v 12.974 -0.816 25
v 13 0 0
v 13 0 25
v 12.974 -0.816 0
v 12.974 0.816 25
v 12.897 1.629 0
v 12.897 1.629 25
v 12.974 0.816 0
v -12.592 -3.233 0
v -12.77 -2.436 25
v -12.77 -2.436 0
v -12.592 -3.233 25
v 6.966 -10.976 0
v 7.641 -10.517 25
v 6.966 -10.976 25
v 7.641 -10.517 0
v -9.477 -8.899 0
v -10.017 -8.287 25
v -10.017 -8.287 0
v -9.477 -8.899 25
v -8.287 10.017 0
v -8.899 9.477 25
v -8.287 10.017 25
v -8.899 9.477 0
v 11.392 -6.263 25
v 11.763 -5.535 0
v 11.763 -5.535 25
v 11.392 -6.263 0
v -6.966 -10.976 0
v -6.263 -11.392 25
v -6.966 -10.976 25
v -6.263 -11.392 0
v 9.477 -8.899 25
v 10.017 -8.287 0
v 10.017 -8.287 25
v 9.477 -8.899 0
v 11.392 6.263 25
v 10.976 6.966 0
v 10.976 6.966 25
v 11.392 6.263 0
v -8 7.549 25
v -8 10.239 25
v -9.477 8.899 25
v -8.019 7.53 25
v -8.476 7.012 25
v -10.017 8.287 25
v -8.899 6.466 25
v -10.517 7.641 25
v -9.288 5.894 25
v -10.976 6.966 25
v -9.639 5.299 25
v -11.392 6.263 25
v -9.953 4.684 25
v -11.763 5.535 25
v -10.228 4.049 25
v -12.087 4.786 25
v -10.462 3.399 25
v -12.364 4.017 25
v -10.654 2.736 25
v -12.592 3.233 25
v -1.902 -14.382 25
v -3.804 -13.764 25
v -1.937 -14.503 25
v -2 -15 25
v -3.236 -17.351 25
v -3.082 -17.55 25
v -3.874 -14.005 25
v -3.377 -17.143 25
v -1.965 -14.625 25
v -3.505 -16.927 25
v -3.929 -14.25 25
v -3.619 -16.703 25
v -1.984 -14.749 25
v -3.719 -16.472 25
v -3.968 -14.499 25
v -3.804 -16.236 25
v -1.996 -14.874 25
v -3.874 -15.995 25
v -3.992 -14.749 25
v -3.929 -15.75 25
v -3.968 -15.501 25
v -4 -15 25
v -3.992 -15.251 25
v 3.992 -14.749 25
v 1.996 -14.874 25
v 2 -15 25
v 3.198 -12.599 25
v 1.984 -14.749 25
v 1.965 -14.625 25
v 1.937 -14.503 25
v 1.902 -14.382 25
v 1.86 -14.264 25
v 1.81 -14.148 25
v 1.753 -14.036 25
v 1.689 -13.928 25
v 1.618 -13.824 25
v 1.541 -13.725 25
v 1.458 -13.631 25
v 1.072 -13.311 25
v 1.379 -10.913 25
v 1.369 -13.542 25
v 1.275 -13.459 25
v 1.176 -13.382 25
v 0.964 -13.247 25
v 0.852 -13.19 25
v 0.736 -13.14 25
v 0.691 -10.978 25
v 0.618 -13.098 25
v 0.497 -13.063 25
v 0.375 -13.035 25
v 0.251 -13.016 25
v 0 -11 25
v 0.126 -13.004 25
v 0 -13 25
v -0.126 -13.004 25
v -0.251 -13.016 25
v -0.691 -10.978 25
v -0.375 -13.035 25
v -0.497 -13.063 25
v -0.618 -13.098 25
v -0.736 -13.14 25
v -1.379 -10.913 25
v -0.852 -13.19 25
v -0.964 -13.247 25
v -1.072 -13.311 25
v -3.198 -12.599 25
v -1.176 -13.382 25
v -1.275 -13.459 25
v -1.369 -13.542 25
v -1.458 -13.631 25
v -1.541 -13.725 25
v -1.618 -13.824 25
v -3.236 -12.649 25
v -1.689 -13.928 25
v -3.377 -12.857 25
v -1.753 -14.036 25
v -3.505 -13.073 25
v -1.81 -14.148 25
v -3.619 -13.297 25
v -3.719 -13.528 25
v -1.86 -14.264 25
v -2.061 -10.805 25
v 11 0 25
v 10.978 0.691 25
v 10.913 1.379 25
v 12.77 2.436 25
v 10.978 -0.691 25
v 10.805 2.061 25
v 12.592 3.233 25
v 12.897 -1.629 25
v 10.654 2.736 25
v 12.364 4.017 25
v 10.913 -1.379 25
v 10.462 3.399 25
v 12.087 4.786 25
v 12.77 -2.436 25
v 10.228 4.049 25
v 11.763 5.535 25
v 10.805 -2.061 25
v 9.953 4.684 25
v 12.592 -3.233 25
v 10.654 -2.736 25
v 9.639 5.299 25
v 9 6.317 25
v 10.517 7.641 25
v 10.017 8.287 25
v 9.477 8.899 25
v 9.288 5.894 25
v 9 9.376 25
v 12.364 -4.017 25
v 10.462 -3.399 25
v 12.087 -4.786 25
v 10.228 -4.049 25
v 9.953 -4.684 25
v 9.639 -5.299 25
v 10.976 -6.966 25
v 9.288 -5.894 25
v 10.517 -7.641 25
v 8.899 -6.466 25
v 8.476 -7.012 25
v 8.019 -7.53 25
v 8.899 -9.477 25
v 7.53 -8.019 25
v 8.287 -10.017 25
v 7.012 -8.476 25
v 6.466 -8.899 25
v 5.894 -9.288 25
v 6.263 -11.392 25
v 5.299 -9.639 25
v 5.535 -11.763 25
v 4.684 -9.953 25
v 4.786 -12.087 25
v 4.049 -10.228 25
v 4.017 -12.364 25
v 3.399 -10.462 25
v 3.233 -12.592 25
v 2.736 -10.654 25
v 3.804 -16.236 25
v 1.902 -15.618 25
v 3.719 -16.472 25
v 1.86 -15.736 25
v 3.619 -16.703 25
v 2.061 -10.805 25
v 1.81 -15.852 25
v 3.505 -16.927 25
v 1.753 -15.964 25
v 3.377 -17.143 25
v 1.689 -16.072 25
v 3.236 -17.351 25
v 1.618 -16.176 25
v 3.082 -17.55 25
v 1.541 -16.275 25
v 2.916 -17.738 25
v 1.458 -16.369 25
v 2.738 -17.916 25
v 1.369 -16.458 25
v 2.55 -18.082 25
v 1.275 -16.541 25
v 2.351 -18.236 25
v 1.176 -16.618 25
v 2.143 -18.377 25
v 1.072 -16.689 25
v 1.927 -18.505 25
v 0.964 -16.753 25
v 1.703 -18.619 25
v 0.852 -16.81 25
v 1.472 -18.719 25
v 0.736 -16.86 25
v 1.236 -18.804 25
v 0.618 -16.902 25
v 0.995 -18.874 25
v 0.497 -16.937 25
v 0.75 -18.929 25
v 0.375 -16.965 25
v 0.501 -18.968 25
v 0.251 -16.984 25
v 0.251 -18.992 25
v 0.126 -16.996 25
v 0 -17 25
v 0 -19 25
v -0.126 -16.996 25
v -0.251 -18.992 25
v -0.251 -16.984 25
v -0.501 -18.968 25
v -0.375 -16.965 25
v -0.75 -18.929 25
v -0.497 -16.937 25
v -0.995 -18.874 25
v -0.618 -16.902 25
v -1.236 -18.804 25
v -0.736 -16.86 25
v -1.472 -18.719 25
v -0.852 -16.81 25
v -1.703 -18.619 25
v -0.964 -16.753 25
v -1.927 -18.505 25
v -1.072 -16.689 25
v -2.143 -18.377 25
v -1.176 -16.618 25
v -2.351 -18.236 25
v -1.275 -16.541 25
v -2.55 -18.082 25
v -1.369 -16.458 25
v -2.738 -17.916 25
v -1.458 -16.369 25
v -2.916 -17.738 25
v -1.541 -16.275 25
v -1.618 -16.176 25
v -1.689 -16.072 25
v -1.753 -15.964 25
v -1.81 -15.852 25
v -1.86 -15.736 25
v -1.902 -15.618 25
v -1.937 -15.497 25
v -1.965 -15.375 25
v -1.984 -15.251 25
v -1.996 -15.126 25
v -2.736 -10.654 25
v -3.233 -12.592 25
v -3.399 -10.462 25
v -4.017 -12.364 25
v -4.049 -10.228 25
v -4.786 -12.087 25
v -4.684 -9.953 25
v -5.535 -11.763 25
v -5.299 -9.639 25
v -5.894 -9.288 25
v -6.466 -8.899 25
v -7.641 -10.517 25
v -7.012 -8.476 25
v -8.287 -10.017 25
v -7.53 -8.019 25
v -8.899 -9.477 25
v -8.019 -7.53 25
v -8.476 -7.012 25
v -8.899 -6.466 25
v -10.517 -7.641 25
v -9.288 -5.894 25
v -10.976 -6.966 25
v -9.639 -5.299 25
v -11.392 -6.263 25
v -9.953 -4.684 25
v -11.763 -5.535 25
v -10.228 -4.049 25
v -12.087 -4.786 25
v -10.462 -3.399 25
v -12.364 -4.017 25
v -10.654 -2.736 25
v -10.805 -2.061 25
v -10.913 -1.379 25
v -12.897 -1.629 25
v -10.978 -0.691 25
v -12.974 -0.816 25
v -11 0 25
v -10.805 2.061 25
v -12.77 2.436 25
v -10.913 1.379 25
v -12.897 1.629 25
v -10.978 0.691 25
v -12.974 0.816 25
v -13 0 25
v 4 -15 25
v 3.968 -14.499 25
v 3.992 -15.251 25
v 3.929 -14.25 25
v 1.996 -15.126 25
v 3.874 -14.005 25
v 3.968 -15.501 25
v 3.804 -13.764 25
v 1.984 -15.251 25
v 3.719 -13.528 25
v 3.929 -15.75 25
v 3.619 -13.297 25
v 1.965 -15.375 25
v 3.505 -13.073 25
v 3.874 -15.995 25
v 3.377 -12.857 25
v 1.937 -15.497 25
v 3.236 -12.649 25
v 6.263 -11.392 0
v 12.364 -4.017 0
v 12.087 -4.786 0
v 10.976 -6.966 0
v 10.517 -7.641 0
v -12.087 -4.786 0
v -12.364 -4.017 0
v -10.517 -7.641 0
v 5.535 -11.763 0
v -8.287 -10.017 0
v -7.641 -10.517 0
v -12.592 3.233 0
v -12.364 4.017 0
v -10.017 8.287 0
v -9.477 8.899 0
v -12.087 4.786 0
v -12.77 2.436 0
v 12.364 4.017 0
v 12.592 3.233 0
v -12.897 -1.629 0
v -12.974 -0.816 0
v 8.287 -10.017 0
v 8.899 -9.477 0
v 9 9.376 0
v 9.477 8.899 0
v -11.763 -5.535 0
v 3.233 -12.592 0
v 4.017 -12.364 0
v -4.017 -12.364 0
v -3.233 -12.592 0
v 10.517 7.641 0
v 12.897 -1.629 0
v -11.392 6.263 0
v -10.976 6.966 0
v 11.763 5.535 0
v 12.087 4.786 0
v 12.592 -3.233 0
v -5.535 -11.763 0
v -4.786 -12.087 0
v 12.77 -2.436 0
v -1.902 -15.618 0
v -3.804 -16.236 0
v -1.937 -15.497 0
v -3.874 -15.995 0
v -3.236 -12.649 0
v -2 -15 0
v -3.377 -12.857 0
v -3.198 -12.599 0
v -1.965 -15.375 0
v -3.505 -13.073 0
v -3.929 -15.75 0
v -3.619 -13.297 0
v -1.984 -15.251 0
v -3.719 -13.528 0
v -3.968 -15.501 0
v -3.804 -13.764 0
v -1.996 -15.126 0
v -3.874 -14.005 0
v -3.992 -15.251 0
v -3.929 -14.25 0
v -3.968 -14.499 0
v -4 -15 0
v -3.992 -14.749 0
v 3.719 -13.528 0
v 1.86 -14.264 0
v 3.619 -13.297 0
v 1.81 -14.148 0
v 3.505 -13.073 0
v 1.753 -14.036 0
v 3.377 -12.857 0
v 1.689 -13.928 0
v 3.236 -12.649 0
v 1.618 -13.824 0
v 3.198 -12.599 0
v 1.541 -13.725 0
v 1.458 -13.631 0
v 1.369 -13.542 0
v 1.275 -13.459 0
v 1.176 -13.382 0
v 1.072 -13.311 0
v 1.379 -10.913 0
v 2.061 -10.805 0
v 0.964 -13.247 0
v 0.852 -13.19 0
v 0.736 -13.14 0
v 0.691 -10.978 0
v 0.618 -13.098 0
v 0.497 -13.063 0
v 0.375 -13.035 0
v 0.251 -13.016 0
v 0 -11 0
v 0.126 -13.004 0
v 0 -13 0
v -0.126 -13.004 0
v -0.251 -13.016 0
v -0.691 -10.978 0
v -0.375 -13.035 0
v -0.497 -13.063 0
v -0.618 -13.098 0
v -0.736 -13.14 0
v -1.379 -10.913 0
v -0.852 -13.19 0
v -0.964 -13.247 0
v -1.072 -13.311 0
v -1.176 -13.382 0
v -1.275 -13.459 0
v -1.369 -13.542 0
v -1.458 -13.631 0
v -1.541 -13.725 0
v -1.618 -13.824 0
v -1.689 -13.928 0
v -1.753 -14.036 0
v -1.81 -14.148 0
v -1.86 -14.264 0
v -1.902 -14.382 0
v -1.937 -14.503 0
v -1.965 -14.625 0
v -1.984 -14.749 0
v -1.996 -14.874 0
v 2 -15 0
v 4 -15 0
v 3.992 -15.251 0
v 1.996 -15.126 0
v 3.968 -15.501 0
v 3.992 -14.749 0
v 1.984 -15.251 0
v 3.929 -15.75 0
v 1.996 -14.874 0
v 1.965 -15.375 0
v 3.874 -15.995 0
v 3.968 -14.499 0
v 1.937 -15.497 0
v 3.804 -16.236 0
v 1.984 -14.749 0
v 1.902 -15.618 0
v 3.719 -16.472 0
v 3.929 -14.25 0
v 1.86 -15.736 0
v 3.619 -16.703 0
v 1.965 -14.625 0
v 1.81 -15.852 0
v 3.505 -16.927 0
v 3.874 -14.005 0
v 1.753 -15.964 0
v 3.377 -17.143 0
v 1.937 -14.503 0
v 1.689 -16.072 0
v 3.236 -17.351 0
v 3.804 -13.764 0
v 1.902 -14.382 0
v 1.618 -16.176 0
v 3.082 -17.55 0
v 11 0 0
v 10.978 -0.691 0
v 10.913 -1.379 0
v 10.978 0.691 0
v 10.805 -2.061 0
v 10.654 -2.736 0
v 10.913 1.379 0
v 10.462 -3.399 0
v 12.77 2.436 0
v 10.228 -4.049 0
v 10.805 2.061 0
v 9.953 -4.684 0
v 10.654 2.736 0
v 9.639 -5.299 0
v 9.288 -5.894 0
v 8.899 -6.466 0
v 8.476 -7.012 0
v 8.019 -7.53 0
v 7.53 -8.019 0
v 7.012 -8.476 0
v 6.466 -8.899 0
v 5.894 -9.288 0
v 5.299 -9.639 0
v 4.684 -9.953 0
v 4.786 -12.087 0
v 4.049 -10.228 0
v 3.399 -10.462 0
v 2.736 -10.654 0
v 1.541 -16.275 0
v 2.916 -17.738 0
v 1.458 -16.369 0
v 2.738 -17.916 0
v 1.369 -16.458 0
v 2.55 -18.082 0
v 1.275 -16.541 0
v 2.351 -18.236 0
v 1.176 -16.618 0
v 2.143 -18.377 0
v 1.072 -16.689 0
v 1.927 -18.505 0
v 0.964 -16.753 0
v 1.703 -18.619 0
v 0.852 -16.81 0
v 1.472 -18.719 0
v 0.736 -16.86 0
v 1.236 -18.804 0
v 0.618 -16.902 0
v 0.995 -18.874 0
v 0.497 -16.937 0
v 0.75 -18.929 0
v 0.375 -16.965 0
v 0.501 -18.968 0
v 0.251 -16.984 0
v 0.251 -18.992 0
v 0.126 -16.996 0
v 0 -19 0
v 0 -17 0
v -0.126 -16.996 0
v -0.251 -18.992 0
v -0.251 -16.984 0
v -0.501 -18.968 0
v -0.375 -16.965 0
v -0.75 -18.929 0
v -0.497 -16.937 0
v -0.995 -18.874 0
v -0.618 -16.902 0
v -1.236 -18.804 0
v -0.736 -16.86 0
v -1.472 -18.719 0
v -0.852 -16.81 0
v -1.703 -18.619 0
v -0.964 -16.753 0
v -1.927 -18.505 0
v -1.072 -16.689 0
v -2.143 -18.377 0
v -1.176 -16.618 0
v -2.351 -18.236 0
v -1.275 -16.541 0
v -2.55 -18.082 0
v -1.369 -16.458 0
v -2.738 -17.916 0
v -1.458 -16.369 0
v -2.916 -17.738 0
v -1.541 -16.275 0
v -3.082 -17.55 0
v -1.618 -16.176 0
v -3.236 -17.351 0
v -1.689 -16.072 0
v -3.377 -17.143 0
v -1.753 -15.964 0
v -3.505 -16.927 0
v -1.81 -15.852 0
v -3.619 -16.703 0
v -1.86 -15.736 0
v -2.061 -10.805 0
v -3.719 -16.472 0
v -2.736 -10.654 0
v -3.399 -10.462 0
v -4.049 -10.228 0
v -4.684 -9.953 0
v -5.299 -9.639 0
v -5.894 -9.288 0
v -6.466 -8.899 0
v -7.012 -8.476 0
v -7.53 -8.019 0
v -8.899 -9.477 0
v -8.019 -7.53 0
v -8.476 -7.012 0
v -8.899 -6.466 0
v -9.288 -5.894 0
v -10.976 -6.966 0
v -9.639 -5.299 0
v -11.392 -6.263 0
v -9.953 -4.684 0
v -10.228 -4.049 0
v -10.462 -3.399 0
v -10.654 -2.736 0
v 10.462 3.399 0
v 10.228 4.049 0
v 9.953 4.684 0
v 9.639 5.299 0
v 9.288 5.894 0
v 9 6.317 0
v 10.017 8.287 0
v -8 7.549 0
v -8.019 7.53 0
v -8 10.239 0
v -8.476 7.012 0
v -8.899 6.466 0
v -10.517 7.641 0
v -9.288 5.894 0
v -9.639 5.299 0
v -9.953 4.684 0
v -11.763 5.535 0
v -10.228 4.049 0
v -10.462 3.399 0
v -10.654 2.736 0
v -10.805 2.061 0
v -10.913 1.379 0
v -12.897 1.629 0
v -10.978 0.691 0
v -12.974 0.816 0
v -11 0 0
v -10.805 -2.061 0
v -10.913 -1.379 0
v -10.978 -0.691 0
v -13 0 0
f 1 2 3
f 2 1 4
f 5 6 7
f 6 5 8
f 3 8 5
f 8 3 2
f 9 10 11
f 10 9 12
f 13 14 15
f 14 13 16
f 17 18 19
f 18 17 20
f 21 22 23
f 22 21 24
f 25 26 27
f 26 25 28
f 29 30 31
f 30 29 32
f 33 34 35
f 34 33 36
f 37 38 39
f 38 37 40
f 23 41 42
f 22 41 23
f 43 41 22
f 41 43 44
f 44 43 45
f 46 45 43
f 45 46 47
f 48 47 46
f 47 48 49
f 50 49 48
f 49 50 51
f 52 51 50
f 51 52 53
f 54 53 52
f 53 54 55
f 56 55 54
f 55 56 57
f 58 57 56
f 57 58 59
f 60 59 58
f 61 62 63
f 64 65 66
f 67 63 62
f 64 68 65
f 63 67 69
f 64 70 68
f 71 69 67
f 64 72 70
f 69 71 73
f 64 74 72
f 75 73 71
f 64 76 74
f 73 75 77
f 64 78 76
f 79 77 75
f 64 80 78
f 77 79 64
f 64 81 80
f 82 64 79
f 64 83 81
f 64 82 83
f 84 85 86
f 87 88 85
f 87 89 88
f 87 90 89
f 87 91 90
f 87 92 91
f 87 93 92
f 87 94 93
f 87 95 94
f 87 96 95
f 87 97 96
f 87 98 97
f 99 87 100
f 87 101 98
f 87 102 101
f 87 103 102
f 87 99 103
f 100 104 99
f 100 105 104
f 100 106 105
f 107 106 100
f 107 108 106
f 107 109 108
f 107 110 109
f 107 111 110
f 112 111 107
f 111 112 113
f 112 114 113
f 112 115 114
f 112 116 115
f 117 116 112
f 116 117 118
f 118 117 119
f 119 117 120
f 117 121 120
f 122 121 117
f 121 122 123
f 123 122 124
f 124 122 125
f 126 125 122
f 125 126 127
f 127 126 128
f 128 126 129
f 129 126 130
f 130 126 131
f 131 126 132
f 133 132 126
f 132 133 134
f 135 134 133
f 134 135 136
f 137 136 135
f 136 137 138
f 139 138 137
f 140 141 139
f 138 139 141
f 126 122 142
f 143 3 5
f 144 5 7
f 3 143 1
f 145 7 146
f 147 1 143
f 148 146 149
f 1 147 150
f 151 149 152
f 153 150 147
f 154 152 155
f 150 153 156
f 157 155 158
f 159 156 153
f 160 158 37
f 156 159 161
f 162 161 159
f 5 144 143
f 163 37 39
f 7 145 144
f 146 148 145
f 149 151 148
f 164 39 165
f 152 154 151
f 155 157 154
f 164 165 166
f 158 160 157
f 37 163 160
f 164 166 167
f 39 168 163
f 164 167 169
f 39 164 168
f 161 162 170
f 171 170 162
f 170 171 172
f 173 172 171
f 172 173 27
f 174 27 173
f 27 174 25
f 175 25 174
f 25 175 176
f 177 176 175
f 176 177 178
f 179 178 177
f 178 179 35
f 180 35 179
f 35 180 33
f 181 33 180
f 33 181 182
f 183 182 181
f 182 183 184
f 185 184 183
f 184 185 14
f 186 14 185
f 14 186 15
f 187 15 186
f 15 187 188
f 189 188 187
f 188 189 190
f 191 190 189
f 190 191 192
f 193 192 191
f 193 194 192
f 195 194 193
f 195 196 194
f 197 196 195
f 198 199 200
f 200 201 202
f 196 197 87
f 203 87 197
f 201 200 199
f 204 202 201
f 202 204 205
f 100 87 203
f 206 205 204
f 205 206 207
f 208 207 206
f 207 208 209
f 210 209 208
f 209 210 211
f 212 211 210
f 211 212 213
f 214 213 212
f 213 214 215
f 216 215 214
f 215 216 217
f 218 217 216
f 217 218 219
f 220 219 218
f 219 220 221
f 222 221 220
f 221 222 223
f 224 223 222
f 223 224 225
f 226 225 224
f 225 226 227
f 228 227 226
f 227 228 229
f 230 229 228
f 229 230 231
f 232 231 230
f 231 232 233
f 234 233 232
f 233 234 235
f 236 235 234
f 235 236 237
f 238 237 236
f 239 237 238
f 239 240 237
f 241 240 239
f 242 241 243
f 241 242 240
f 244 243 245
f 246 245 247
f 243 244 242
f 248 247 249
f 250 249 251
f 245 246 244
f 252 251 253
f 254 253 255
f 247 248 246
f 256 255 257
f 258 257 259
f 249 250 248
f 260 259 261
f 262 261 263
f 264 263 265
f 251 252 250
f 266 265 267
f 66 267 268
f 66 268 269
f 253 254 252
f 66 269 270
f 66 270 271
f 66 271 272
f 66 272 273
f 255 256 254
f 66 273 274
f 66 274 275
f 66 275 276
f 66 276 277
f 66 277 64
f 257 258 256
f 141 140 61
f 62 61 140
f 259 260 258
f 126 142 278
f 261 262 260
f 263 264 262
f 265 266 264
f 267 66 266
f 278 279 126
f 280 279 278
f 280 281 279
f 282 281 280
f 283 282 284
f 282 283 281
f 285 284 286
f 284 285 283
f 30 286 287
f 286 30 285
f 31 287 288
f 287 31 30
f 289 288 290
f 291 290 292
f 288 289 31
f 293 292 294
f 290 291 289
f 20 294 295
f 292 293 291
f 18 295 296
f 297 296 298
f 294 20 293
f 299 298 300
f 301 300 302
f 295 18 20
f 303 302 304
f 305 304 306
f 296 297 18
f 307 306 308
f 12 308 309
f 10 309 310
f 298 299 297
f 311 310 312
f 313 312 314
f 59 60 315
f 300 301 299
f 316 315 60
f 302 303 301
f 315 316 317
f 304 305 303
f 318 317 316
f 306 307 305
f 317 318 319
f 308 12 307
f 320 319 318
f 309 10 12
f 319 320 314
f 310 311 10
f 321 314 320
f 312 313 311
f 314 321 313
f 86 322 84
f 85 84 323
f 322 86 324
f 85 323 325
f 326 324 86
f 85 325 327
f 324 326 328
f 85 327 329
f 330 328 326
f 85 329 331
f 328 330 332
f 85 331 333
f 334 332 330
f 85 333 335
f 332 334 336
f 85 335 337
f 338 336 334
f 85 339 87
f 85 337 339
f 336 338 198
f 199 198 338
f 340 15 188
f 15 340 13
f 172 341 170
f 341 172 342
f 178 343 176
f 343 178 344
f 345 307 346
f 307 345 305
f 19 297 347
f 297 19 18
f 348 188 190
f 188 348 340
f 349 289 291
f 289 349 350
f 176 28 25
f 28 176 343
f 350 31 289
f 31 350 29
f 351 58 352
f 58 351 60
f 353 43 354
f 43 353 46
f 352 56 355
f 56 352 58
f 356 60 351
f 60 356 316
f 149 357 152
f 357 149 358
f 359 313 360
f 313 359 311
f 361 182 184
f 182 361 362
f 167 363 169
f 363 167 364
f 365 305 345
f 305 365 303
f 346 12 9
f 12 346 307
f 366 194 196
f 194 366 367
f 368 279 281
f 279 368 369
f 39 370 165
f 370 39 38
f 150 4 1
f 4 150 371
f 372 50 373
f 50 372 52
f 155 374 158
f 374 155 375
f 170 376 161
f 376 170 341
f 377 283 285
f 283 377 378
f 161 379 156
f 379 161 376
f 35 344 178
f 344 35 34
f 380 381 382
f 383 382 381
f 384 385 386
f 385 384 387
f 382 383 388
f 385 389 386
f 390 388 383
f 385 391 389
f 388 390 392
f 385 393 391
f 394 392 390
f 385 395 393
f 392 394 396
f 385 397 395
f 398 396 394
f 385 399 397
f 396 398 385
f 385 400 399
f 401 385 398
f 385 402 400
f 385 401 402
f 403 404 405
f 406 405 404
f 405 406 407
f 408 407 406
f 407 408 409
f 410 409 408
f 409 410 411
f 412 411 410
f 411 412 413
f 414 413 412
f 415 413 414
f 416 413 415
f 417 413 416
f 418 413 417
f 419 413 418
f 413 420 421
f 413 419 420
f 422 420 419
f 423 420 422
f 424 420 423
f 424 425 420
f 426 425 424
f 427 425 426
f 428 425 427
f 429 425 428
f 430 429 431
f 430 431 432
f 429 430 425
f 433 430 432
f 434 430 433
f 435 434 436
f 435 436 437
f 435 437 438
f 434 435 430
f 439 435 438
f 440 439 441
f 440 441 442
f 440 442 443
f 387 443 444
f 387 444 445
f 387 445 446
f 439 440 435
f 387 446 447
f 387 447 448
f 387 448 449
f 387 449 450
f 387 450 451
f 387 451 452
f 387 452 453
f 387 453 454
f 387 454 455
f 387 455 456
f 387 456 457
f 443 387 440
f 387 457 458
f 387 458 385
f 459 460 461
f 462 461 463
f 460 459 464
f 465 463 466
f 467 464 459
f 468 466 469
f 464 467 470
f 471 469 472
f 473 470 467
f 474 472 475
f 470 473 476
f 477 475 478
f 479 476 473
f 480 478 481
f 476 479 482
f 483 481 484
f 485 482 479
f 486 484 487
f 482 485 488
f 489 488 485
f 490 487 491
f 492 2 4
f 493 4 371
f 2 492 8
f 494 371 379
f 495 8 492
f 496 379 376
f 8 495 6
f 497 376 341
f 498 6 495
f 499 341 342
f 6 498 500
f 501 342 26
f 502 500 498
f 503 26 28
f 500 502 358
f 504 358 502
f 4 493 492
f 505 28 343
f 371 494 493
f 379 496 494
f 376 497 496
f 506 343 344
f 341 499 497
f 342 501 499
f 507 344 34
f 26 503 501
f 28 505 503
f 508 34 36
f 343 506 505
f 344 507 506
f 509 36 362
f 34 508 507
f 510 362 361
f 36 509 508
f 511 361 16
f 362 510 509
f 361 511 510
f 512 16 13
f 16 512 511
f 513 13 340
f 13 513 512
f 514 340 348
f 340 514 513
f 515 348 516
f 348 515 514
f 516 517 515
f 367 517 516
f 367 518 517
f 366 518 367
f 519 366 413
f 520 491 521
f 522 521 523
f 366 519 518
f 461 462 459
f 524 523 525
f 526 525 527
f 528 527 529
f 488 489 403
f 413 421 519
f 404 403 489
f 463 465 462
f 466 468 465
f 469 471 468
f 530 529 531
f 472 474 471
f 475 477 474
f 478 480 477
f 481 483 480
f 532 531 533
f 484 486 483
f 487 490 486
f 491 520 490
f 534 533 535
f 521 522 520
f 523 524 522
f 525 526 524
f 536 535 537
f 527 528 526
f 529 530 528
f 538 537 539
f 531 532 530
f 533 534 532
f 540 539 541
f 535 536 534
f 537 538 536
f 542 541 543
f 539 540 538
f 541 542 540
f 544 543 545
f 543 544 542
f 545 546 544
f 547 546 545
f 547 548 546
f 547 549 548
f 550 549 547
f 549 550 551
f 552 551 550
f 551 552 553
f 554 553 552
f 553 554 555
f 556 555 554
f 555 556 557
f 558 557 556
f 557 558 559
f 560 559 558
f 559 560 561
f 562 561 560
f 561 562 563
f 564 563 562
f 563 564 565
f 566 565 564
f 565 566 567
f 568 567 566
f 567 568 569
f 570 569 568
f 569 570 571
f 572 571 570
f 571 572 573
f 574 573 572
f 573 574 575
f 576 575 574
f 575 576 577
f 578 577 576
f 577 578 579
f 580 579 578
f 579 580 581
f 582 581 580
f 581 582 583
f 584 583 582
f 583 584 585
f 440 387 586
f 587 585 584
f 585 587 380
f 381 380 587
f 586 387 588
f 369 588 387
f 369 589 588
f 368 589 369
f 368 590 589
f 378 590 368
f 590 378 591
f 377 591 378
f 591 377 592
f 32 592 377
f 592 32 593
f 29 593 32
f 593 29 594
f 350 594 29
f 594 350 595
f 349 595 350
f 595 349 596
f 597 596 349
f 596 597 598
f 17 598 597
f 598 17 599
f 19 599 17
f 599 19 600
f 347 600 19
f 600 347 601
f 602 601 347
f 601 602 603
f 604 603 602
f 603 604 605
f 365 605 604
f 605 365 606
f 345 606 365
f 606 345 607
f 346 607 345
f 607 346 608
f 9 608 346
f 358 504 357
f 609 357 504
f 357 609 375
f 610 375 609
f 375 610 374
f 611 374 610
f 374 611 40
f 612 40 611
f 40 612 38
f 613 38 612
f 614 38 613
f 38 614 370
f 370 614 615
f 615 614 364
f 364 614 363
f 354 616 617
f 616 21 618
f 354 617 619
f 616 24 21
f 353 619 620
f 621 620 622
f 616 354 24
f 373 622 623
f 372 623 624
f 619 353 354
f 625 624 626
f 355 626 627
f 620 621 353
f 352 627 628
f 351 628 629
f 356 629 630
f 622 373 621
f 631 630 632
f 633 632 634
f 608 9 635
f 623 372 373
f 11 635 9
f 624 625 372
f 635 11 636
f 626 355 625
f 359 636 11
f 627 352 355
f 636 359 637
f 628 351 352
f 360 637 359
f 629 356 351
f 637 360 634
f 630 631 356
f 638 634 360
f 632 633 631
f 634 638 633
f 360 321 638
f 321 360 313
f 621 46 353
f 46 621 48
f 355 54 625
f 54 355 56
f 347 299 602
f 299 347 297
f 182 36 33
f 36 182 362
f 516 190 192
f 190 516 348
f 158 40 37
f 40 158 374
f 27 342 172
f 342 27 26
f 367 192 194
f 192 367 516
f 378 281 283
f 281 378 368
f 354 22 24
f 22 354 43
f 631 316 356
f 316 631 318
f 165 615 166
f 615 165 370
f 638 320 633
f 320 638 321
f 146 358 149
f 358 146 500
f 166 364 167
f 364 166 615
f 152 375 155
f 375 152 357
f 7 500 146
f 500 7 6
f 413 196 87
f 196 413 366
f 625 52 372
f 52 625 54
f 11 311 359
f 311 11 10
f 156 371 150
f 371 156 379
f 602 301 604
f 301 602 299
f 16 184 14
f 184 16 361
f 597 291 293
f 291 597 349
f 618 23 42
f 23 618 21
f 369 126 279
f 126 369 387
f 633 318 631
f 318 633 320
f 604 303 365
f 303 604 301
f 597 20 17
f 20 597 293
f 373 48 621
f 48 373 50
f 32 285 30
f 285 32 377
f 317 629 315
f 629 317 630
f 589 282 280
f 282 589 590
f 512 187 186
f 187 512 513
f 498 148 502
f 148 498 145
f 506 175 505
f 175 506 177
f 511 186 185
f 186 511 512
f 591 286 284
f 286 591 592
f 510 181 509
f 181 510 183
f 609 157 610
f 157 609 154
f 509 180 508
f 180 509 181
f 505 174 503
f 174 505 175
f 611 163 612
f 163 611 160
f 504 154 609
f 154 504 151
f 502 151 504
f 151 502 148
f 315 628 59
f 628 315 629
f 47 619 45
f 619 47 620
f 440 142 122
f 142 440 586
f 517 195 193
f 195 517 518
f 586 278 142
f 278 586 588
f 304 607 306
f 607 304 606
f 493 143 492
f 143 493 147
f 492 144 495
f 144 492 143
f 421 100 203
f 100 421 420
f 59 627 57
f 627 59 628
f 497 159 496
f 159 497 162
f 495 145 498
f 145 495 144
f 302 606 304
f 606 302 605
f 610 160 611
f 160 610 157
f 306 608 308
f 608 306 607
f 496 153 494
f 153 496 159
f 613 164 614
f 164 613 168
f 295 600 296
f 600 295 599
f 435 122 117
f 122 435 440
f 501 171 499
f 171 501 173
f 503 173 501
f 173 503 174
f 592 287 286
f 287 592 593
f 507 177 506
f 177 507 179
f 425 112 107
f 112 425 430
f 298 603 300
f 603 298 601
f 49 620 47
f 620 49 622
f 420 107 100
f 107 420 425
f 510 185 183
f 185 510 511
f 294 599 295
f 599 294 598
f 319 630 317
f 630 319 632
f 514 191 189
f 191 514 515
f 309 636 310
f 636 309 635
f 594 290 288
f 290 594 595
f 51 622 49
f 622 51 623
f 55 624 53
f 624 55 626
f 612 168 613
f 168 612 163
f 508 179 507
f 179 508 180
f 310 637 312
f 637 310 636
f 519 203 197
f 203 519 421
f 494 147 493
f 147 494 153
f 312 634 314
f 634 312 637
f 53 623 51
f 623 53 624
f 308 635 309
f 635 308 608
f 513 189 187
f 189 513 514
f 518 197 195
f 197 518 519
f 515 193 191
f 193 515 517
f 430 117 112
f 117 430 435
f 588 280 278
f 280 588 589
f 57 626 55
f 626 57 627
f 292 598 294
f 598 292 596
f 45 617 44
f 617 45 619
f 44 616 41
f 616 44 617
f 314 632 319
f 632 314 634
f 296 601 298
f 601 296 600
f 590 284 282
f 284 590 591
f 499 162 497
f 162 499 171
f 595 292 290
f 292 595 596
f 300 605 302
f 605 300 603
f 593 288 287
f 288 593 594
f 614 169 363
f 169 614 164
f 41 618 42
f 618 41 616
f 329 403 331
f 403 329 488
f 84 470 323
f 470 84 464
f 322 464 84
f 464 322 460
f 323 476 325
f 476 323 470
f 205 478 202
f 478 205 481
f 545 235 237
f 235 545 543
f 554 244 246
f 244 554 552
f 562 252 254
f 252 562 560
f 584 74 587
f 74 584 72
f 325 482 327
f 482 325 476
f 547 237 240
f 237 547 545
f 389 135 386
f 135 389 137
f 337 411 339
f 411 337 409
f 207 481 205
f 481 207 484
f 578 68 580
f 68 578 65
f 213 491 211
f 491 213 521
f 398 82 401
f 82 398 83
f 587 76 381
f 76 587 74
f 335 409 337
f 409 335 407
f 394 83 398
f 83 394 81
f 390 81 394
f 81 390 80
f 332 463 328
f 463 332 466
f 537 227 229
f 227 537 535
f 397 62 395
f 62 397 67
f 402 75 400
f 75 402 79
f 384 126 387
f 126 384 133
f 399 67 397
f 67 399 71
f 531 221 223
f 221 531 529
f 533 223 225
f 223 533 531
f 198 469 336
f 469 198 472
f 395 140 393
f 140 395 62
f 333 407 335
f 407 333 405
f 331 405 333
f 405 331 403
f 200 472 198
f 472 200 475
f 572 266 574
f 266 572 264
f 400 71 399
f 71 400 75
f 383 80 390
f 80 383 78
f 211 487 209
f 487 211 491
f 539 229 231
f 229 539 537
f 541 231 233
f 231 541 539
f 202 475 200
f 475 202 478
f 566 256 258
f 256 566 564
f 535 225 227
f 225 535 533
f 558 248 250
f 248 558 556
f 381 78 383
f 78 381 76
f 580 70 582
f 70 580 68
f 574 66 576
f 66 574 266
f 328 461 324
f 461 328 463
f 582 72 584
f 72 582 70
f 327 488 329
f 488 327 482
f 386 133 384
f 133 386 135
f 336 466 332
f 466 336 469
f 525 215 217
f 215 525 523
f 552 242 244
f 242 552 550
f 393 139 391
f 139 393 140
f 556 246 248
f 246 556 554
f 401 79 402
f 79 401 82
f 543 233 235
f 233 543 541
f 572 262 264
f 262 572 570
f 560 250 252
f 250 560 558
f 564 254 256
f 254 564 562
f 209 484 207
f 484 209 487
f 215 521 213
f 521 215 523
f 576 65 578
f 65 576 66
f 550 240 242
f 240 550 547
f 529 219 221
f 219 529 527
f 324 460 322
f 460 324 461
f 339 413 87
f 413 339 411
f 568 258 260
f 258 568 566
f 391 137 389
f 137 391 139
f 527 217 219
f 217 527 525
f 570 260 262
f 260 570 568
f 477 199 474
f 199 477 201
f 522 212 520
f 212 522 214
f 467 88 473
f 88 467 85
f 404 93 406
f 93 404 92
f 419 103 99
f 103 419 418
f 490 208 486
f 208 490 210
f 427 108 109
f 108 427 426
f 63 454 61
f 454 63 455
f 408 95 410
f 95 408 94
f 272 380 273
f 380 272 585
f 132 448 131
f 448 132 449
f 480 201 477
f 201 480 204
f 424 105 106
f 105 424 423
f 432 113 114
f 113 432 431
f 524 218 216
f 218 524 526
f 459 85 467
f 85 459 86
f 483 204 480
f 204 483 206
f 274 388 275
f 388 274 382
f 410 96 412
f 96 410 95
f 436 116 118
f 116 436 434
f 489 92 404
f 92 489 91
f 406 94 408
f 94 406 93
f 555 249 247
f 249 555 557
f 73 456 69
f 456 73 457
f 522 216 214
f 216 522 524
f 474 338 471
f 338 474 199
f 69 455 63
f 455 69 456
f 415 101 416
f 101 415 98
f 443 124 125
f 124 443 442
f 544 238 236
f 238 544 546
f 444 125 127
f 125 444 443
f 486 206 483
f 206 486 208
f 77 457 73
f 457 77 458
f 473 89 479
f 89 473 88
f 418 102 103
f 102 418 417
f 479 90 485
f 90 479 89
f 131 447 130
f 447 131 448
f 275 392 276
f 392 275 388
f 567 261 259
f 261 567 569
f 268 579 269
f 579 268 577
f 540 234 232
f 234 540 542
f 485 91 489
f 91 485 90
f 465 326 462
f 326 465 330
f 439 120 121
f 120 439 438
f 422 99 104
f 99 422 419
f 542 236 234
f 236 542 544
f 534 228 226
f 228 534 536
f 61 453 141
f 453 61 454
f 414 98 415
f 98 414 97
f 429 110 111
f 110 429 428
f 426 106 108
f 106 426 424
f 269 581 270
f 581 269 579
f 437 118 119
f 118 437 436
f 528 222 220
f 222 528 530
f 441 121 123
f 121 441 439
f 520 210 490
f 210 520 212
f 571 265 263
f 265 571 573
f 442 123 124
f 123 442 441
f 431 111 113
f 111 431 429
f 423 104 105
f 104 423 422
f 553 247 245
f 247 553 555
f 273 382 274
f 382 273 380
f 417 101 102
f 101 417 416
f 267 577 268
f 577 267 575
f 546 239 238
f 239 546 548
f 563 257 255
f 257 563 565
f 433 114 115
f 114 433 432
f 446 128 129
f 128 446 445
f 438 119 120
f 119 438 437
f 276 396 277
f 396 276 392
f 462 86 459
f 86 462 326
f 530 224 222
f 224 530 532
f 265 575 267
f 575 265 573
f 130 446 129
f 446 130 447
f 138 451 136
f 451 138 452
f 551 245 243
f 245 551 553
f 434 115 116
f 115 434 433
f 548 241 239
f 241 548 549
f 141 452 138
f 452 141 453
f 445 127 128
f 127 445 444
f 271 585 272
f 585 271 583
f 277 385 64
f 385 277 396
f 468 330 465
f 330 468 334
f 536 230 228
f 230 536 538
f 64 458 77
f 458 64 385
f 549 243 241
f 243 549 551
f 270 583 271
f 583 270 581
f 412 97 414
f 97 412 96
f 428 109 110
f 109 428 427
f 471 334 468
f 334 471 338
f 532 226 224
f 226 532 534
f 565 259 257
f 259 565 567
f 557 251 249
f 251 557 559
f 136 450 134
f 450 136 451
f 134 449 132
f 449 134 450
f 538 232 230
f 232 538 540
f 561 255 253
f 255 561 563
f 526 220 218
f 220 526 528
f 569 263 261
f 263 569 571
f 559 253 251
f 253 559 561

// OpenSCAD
LENGTH = 25;

union(){

	// clamp
	difference(){
		cylinder(r=13,h=LENGTH,$fn=100);

		// hole
		translate([0,0,-1]){
			cylinder(r=(22/2),h=LENGTH+2,$fn=100);
		}

		// slot
		translate([-8,0,-1]){
			cube([17,20,LENGTH+2]);
		}
	}

	// blower screw mount
	translate([0,-15,0]){
		difference(){

			// body
			cylinder(r=4,h=LENGTH,$fn=100);
	
			// hole
			translate([0,0,-1]){
				cylinder(r=2,h=LENGTH+2,$fn=100);
			}
		}
	}
}
